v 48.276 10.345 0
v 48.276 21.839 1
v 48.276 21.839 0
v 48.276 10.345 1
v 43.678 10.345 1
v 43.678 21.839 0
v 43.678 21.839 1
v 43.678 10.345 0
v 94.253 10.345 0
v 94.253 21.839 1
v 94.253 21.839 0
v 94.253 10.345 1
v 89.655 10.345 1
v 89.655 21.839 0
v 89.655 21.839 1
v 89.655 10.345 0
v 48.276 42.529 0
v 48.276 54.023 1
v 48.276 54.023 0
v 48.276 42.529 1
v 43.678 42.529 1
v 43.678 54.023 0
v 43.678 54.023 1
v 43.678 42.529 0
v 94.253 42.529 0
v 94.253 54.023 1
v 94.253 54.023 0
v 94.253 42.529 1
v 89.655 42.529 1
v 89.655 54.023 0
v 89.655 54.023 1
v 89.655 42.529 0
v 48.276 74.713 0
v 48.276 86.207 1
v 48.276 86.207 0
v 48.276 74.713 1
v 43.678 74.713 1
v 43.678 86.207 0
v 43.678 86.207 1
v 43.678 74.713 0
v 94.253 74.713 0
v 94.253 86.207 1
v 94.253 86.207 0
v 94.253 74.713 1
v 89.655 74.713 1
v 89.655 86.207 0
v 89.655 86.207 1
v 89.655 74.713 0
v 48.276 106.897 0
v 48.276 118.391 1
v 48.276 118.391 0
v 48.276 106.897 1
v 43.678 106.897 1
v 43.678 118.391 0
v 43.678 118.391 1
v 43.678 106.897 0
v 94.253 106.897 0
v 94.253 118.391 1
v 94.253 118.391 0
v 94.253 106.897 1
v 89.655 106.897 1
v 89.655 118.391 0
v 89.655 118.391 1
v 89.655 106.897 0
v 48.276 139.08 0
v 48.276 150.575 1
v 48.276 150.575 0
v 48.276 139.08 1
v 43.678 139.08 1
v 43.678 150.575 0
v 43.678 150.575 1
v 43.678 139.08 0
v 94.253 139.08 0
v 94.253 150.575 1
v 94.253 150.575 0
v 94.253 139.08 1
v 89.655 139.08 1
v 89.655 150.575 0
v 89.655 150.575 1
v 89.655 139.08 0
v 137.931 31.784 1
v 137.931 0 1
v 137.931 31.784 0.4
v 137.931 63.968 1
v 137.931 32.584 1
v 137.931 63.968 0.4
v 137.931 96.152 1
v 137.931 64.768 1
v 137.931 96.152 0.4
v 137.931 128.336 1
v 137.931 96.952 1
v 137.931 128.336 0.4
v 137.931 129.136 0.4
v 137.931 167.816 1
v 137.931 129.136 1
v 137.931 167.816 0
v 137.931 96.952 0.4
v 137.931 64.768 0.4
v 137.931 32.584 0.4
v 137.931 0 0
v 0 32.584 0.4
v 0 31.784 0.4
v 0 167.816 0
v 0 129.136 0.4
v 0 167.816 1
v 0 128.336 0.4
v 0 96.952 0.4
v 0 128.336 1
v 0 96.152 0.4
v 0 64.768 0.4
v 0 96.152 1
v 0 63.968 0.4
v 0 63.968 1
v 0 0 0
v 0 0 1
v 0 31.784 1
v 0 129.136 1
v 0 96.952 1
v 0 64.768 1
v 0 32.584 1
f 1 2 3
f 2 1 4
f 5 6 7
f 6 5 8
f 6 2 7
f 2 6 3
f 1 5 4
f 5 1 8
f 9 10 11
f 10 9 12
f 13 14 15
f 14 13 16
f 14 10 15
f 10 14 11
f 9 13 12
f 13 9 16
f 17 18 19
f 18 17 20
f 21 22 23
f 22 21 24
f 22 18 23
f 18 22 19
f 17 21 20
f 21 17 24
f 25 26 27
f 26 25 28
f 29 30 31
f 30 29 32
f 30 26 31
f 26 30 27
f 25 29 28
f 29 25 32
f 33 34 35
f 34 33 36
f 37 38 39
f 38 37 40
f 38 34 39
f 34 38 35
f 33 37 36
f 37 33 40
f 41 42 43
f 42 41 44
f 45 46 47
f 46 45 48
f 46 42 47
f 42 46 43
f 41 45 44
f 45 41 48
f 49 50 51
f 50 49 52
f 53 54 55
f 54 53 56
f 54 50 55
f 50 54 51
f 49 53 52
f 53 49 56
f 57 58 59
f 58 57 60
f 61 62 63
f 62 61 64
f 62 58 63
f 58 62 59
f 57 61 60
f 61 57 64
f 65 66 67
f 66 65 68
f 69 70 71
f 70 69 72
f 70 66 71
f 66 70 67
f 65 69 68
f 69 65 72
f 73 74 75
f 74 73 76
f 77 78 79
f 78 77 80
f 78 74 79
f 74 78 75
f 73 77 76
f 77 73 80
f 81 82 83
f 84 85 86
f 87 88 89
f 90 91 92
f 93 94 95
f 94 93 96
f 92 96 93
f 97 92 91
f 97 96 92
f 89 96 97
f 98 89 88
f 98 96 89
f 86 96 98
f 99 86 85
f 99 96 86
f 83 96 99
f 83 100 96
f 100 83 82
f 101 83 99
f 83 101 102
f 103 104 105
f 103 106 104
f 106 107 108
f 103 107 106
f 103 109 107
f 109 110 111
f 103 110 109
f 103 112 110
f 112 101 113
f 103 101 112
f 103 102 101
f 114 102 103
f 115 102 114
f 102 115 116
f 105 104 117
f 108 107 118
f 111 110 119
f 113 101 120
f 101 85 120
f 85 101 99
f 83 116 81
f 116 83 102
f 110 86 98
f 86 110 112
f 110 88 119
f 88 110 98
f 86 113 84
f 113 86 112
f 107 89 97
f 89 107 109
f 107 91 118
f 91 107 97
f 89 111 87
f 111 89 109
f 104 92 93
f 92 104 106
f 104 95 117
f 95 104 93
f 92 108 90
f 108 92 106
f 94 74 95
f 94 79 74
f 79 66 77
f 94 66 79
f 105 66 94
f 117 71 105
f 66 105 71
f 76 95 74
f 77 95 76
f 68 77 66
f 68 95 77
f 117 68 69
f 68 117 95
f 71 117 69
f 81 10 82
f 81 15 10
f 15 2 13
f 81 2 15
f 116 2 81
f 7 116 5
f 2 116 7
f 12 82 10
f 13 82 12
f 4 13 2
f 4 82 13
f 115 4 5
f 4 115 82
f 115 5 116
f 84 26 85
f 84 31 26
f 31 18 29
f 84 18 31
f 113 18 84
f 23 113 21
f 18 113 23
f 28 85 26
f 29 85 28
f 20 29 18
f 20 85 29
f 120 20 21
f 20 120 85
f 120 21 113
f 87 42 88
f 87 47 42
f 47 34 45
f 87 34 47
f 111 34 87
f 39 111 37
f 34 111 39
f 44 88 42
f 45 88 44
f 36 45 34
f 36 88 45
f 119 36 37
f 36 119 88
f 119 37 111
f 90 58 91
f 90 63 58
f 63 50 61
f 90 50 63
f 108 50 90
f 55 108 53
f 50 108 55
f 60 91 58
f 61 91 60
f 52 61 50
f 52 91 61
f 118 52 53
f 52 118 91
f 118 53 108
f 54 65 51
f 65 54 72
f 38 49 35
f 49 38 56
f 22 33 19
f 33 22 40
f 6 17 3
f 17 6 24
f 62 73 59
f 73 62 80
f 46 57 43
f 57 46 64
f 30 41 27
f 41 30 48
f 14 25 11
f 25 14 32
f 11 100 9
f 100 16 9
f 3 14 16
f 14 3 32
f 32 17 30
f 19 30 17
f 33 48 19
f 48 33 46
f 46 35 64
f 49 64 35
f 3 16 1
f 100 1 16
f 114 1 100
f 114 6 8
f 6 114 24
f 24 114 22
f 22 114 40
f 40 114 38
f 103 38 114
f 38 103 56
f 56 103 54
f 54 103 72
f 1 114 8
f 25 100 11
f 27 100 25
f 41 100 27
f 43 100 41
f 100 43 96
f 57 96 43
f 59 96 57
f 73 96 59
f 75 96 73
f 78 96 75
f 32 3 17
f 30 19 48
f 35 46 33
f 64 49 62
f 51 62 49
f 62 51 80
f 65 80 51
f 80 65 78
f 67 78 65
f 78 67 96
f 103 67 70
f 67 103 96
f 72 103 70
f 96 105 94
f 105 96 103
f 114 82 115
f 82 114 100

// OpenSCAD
/*
 * PROMPT: H0 scale (1:87) Eastern European prefab apartment block — gable (side/end) wall panel, flat for FDM printing. Spans building depth, five floors tall with parapet. Two narrow stairwell windows per floor at 1/3 and 2/3 of the depth. Horizontal floor-line grooves. Used for both left and right gable ends. Panel lies flat, exterior face up.
 */

$fn = 32;

S          = 1/87;
panel_t    = 1.0;

floors     = 5;
bld_d      = 12000 * S;   // 137.9 mm
floor_h    = 2800  * S;   //  32.2 mm
bld_h      = floors * floor_h;
parapet_h  = 600   * S;   //   6.9 mm
wall_panel_h = bld_h + parapet_h;

gwin_w     = 400  * S;   //  4.6 mm
gwin_h     = 1000 * S;   // 11.5 mm

groove_w   = 0.8;
groove_d   = 0.6;

module wall_gable() {
    difference() {
        // Base slab
        cube([bld_d, wall_panel_h, panel_t]);

        // Stairwell windows at 1/3 and 2/3 depth for each floor
        for (f = [0 : floors - 1]) {
            for (pos = [1/3, 2/3]) {
                translate([
                    pos * bld_d - gwin_w / 2,
                    f * floor_h + (floor_h - gwin_h) / 2,
                    -1
                ])
                cube([gwin_w, gwin_h, panel_t + 2]);
            }
        }

        // Horizontal floor-line grooves on exterior face
        for (f = [1 : floors - 1]) {
            translate([
                0,
                f * floor_h - groove_w / 2,
                panel_t - groove_d
            ])
            cube([bld_d, groove_w, groove_d + 1]);
        }
    }
}

wall_gable();
